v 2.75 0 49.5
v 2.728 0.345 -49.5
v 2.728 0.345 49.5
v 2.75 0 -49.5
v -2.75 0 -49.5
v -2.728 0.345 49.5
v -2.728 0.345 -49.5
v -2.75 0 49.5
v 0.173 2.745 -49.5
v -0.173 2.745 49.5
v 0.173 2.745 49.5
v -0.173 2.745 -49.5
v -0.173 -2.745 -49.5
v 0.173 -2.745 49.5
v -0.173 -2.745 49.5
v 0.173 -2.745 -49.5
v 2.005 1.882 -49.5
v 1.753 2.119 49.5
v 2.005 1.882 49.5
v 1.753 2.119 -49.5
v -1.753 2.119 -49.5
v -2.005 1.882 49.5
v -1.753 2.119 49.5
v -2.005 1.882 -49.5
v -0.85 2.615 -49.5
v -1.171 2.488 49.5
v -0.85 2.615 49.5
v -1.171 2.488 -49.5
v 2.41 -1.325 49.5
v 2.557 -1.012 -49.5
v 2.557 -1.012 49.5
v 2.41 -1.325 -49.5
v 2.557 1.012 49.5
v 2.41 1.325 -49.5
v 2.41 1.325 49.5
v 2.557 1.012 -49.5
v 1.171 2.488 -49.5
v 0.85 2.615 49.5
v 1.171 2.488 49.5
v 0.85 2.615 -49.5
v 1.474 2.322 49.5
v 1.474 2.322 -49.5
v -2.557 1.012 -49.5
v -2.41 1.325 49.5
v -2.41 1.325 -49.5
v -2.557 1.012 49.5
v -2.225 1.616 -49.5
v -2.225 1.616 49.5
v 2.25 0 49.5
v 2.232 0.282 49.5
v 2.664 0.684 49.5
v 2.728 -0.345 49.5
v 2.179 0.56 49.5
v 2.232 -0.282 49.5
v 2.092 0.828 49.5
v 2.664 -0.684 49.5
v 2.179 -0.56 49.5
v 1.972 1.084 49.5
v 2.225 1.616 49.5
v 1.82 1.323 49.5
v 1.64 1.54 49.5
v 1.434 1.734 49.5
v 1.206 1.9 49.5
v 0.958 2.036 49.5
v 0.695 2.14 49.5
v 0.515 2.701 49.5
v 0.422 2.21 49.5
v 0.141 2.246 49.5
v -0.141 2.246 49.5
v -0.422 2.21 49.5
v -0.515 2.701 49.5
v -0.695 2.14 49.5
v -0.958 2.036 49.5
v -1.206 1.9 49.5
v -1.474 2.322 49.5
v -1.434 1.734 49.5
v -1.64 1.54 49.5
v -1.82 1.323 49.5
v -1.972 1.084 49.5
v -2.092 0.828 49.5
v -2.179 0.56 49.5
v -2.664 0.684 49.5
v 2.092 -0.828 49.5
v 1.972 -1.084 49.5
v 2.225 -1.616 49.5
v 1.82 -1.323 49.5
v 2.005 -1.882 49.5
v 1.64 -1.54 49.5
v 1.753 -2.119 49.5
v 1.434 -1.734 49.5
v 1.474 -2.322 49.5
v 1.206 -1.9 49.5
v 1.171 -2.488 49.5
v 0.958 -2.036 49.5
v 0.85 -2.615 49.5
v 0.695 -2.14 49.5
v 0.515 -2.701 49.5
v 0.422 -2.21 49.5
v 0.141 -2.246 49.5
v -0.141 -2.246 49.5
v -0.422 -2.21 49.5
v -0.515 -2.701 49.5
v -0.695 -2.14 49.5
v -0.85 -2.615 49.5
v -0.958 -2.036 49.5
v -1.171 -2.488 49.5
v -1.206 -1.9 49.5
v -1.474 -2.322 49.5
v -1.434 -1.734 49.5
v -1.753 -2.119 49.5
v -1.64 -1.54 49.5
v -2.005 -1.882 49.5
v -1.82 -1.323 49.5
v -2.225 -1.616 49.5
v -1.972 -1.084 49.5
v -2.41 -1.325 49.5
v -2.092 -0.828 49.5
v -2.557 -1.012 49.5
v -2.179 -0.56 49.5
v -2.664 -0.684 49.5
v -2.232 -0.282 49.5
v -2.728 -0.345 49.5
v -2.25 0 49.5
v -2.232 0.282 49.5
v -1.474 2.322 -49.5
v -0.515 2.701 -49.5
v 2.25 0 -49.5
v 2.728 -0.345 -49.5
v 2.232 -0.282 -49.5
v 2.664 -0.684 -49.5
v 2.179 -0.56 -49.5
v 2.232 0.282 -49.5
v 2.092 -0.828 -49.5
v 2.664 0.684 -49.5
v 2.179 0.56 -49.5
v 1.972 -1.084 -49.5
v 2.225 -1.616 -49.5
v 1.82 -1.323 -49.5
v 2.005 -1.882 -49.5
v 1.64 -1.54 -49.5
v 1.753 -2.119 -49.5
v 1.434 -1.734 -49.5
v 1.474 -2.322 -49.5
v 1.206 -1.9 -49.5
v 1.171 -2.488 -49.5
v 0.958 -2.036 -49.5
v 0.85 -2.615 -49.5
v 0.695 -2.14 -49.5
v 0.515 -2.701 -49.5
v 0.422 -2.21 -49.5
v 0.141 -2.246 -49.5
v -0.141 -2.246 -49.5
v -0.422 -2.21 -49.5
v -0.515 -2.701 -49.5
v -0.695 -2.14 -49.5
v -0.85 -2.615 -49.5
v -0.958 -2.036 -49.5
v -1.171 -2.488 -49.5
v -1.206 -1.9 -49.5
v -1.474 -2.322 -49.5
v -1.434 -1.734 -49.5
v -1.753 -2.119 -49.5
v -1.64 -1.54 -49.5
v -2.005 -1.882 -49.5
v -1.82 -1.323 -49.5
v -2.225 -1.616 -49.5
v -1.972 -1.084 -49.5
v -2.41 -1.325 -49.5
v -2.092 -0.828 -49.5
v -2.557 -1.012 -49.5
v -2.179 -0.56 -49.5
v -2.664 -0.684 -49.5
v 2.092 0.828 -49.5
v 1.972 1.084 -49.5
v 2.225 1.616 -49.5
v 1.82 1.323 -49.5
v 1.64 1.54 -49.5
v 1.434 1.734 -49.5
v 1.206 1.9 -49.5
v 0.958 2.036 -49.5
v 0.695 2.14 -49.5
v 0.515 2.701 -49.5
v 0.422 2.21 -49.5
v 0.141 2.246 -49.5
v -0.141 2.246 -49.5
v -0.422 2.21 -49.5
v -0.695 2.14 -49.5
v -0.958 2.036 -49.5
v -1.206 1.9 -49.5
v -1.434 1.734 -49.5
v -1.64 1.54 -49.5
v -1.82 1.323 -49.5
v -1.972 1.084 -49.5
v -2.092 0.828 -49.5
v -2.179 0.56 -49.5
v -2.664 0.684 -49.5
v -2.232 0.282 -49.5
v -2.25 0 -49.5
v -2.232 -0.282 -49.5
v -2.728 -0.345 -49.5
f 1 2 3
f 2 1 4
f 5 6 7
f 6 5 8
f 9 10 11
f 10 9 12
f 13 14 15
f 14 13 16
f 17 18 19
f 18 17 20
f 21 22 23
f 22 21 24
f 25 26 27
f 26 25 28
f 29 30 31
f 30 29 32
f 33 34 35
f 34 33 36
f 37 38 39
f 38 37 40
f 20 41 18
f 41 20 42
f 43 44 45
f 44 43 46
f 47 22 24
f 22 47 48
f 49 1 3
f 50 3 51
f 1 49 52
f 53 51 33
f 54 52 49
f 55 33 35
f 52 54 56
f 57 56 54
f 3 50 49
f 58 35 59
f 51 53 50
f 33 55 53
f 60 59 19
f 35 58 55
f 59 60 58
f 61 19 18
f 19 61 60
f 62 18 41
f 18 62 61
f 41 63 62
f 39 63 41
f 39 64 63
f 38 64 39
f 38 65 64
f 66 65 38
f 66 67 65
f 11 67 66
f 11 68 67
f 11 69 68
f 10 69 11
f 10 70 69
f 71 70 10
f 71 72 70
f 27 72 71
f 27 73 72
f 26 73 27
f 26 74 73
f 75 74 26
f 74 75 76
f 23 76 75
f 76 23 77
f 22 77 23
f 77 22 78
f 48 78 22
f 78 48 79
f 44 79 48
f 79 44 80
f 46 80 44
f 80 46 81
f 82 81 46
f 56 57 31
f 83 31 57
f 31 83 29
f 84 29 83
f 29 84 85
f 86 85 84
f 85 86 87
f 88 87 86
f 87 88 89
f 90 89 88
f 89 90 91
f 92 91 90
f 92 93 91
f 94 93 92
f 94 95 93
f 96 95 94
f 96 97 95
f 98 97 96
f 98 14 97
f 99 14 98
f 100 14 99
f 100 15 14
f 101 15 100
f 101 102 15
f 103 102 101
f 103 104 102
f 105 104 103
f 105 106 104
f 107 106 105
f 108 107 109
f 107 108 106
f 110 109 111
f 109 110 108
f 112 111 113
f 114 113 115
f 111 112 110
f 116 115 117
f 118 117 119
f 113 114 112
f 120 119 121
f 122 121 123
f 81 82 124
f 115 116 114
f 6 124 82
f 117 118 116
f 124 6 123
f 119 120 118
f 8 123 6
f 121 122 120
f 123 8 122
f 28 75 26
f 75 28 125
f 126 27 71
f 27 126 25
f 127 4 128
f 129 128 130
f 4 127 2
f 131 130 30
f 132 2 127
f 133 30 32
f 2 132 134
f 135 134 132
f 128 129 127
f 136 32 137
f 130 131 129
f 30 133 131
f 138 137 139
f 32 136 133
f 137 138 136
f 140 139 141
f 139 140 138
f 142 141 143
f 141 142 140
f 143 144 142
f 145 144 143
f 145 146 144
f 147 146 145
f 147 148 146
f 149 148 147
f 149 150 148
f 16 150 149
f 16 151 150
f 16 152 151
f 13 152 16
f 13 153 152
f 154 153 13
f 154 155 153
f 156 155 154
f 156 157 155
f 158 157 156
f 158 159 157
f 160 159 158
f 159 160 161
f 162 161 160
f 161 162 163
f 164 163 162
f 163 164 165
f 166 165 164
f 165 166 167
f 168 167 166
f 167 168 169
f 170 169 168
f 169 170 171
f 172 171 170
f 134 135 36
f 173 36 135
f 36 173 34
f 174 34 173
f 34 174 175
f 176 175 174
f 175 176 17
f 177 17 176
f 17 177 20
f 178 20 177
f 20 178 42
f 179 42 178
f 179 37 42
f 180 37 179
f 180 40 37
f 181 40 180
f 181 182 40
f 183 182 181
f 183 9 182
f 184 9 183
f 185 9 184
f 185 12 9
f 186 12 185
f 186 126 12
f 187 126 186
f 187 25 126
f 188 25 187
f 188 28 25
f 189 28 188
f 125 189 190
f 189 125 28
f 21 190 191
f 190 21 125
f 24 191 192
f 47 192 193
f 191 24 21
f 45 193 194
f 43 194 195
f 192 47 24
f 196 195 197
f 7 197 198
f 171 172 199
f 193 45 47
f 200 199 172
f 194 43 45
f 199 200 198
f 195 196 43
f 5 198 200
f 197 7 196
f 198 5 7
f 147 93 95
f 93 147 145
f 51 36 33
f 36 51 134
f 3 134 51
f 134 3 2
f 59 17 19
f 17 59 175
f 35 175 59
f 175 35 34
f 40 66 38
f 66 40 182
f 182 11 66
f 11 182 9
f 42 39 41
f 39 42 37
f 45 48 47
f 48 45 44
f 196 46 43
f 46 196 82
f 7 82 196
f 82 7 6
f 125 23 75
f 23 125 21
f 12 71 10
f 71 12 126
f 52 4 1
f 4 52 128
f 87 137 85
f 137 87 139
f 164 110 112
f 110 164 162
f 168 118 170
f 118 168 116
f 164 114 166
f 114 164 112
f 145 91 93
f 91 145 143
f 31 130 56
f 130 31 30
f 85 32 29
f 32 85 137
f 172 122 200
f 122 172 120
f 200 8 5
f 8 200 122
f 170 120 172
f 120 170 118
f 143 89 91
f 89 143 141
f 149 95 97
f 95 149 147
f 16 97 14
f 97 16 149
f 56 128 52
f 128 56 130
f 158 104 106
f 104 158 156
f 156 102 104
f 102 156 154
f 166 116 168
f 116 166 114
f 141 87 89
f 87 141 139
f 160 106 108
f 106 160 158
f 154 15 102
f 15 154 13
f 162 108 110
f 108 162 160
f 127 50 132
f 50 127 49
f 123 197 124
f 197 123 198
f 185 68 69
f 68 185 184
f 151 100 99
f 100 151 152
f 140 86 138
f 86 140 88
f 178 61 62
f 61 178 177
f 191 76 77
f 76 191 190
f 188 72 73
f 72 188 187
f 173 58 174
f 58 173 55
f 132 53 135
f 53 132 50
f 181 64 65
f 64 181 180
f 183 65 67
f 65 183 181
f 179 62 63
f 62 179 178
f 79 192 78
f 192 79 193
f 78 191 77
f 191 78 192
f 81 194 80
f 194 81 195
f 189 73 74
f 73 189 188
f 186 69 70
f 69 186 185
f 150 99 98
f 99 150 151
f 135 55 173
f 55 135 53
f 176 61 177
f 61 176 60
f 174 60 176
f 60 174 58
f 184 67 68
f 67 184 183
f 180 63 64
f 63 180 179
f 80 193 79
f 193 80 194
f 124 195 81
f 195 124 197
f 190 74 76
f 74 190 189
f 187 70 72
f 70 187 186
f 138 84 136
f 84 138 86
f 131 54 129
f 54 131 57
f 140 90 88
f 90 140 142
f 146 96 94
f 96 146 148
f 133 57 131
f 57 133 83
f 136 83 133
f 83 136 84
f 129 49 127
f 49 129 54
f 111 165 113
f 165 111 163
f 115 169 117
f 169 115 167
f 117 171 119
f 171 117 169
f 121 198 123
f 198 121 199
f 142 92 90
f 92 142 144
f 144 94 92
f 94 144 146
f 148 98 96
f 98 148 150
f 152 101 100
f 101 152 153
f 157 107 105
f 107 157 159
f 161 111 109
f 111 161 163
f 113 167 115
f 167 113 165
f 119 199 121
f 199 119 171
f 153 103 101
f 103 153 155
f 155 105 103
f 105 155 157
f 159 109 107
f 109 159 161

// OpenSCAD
$fn = 50;


difference() {
	union() {
		translate(v = [0, 0, -49.5000000000]) {
			cylinder(h = 99, r = 2.7500000000);
		}
	}
	union() {
		translate(v = [0, 0, -100.0000000000]) {
			cylinder(h = 200, r = 2.2500000000);
		}
	}
}
